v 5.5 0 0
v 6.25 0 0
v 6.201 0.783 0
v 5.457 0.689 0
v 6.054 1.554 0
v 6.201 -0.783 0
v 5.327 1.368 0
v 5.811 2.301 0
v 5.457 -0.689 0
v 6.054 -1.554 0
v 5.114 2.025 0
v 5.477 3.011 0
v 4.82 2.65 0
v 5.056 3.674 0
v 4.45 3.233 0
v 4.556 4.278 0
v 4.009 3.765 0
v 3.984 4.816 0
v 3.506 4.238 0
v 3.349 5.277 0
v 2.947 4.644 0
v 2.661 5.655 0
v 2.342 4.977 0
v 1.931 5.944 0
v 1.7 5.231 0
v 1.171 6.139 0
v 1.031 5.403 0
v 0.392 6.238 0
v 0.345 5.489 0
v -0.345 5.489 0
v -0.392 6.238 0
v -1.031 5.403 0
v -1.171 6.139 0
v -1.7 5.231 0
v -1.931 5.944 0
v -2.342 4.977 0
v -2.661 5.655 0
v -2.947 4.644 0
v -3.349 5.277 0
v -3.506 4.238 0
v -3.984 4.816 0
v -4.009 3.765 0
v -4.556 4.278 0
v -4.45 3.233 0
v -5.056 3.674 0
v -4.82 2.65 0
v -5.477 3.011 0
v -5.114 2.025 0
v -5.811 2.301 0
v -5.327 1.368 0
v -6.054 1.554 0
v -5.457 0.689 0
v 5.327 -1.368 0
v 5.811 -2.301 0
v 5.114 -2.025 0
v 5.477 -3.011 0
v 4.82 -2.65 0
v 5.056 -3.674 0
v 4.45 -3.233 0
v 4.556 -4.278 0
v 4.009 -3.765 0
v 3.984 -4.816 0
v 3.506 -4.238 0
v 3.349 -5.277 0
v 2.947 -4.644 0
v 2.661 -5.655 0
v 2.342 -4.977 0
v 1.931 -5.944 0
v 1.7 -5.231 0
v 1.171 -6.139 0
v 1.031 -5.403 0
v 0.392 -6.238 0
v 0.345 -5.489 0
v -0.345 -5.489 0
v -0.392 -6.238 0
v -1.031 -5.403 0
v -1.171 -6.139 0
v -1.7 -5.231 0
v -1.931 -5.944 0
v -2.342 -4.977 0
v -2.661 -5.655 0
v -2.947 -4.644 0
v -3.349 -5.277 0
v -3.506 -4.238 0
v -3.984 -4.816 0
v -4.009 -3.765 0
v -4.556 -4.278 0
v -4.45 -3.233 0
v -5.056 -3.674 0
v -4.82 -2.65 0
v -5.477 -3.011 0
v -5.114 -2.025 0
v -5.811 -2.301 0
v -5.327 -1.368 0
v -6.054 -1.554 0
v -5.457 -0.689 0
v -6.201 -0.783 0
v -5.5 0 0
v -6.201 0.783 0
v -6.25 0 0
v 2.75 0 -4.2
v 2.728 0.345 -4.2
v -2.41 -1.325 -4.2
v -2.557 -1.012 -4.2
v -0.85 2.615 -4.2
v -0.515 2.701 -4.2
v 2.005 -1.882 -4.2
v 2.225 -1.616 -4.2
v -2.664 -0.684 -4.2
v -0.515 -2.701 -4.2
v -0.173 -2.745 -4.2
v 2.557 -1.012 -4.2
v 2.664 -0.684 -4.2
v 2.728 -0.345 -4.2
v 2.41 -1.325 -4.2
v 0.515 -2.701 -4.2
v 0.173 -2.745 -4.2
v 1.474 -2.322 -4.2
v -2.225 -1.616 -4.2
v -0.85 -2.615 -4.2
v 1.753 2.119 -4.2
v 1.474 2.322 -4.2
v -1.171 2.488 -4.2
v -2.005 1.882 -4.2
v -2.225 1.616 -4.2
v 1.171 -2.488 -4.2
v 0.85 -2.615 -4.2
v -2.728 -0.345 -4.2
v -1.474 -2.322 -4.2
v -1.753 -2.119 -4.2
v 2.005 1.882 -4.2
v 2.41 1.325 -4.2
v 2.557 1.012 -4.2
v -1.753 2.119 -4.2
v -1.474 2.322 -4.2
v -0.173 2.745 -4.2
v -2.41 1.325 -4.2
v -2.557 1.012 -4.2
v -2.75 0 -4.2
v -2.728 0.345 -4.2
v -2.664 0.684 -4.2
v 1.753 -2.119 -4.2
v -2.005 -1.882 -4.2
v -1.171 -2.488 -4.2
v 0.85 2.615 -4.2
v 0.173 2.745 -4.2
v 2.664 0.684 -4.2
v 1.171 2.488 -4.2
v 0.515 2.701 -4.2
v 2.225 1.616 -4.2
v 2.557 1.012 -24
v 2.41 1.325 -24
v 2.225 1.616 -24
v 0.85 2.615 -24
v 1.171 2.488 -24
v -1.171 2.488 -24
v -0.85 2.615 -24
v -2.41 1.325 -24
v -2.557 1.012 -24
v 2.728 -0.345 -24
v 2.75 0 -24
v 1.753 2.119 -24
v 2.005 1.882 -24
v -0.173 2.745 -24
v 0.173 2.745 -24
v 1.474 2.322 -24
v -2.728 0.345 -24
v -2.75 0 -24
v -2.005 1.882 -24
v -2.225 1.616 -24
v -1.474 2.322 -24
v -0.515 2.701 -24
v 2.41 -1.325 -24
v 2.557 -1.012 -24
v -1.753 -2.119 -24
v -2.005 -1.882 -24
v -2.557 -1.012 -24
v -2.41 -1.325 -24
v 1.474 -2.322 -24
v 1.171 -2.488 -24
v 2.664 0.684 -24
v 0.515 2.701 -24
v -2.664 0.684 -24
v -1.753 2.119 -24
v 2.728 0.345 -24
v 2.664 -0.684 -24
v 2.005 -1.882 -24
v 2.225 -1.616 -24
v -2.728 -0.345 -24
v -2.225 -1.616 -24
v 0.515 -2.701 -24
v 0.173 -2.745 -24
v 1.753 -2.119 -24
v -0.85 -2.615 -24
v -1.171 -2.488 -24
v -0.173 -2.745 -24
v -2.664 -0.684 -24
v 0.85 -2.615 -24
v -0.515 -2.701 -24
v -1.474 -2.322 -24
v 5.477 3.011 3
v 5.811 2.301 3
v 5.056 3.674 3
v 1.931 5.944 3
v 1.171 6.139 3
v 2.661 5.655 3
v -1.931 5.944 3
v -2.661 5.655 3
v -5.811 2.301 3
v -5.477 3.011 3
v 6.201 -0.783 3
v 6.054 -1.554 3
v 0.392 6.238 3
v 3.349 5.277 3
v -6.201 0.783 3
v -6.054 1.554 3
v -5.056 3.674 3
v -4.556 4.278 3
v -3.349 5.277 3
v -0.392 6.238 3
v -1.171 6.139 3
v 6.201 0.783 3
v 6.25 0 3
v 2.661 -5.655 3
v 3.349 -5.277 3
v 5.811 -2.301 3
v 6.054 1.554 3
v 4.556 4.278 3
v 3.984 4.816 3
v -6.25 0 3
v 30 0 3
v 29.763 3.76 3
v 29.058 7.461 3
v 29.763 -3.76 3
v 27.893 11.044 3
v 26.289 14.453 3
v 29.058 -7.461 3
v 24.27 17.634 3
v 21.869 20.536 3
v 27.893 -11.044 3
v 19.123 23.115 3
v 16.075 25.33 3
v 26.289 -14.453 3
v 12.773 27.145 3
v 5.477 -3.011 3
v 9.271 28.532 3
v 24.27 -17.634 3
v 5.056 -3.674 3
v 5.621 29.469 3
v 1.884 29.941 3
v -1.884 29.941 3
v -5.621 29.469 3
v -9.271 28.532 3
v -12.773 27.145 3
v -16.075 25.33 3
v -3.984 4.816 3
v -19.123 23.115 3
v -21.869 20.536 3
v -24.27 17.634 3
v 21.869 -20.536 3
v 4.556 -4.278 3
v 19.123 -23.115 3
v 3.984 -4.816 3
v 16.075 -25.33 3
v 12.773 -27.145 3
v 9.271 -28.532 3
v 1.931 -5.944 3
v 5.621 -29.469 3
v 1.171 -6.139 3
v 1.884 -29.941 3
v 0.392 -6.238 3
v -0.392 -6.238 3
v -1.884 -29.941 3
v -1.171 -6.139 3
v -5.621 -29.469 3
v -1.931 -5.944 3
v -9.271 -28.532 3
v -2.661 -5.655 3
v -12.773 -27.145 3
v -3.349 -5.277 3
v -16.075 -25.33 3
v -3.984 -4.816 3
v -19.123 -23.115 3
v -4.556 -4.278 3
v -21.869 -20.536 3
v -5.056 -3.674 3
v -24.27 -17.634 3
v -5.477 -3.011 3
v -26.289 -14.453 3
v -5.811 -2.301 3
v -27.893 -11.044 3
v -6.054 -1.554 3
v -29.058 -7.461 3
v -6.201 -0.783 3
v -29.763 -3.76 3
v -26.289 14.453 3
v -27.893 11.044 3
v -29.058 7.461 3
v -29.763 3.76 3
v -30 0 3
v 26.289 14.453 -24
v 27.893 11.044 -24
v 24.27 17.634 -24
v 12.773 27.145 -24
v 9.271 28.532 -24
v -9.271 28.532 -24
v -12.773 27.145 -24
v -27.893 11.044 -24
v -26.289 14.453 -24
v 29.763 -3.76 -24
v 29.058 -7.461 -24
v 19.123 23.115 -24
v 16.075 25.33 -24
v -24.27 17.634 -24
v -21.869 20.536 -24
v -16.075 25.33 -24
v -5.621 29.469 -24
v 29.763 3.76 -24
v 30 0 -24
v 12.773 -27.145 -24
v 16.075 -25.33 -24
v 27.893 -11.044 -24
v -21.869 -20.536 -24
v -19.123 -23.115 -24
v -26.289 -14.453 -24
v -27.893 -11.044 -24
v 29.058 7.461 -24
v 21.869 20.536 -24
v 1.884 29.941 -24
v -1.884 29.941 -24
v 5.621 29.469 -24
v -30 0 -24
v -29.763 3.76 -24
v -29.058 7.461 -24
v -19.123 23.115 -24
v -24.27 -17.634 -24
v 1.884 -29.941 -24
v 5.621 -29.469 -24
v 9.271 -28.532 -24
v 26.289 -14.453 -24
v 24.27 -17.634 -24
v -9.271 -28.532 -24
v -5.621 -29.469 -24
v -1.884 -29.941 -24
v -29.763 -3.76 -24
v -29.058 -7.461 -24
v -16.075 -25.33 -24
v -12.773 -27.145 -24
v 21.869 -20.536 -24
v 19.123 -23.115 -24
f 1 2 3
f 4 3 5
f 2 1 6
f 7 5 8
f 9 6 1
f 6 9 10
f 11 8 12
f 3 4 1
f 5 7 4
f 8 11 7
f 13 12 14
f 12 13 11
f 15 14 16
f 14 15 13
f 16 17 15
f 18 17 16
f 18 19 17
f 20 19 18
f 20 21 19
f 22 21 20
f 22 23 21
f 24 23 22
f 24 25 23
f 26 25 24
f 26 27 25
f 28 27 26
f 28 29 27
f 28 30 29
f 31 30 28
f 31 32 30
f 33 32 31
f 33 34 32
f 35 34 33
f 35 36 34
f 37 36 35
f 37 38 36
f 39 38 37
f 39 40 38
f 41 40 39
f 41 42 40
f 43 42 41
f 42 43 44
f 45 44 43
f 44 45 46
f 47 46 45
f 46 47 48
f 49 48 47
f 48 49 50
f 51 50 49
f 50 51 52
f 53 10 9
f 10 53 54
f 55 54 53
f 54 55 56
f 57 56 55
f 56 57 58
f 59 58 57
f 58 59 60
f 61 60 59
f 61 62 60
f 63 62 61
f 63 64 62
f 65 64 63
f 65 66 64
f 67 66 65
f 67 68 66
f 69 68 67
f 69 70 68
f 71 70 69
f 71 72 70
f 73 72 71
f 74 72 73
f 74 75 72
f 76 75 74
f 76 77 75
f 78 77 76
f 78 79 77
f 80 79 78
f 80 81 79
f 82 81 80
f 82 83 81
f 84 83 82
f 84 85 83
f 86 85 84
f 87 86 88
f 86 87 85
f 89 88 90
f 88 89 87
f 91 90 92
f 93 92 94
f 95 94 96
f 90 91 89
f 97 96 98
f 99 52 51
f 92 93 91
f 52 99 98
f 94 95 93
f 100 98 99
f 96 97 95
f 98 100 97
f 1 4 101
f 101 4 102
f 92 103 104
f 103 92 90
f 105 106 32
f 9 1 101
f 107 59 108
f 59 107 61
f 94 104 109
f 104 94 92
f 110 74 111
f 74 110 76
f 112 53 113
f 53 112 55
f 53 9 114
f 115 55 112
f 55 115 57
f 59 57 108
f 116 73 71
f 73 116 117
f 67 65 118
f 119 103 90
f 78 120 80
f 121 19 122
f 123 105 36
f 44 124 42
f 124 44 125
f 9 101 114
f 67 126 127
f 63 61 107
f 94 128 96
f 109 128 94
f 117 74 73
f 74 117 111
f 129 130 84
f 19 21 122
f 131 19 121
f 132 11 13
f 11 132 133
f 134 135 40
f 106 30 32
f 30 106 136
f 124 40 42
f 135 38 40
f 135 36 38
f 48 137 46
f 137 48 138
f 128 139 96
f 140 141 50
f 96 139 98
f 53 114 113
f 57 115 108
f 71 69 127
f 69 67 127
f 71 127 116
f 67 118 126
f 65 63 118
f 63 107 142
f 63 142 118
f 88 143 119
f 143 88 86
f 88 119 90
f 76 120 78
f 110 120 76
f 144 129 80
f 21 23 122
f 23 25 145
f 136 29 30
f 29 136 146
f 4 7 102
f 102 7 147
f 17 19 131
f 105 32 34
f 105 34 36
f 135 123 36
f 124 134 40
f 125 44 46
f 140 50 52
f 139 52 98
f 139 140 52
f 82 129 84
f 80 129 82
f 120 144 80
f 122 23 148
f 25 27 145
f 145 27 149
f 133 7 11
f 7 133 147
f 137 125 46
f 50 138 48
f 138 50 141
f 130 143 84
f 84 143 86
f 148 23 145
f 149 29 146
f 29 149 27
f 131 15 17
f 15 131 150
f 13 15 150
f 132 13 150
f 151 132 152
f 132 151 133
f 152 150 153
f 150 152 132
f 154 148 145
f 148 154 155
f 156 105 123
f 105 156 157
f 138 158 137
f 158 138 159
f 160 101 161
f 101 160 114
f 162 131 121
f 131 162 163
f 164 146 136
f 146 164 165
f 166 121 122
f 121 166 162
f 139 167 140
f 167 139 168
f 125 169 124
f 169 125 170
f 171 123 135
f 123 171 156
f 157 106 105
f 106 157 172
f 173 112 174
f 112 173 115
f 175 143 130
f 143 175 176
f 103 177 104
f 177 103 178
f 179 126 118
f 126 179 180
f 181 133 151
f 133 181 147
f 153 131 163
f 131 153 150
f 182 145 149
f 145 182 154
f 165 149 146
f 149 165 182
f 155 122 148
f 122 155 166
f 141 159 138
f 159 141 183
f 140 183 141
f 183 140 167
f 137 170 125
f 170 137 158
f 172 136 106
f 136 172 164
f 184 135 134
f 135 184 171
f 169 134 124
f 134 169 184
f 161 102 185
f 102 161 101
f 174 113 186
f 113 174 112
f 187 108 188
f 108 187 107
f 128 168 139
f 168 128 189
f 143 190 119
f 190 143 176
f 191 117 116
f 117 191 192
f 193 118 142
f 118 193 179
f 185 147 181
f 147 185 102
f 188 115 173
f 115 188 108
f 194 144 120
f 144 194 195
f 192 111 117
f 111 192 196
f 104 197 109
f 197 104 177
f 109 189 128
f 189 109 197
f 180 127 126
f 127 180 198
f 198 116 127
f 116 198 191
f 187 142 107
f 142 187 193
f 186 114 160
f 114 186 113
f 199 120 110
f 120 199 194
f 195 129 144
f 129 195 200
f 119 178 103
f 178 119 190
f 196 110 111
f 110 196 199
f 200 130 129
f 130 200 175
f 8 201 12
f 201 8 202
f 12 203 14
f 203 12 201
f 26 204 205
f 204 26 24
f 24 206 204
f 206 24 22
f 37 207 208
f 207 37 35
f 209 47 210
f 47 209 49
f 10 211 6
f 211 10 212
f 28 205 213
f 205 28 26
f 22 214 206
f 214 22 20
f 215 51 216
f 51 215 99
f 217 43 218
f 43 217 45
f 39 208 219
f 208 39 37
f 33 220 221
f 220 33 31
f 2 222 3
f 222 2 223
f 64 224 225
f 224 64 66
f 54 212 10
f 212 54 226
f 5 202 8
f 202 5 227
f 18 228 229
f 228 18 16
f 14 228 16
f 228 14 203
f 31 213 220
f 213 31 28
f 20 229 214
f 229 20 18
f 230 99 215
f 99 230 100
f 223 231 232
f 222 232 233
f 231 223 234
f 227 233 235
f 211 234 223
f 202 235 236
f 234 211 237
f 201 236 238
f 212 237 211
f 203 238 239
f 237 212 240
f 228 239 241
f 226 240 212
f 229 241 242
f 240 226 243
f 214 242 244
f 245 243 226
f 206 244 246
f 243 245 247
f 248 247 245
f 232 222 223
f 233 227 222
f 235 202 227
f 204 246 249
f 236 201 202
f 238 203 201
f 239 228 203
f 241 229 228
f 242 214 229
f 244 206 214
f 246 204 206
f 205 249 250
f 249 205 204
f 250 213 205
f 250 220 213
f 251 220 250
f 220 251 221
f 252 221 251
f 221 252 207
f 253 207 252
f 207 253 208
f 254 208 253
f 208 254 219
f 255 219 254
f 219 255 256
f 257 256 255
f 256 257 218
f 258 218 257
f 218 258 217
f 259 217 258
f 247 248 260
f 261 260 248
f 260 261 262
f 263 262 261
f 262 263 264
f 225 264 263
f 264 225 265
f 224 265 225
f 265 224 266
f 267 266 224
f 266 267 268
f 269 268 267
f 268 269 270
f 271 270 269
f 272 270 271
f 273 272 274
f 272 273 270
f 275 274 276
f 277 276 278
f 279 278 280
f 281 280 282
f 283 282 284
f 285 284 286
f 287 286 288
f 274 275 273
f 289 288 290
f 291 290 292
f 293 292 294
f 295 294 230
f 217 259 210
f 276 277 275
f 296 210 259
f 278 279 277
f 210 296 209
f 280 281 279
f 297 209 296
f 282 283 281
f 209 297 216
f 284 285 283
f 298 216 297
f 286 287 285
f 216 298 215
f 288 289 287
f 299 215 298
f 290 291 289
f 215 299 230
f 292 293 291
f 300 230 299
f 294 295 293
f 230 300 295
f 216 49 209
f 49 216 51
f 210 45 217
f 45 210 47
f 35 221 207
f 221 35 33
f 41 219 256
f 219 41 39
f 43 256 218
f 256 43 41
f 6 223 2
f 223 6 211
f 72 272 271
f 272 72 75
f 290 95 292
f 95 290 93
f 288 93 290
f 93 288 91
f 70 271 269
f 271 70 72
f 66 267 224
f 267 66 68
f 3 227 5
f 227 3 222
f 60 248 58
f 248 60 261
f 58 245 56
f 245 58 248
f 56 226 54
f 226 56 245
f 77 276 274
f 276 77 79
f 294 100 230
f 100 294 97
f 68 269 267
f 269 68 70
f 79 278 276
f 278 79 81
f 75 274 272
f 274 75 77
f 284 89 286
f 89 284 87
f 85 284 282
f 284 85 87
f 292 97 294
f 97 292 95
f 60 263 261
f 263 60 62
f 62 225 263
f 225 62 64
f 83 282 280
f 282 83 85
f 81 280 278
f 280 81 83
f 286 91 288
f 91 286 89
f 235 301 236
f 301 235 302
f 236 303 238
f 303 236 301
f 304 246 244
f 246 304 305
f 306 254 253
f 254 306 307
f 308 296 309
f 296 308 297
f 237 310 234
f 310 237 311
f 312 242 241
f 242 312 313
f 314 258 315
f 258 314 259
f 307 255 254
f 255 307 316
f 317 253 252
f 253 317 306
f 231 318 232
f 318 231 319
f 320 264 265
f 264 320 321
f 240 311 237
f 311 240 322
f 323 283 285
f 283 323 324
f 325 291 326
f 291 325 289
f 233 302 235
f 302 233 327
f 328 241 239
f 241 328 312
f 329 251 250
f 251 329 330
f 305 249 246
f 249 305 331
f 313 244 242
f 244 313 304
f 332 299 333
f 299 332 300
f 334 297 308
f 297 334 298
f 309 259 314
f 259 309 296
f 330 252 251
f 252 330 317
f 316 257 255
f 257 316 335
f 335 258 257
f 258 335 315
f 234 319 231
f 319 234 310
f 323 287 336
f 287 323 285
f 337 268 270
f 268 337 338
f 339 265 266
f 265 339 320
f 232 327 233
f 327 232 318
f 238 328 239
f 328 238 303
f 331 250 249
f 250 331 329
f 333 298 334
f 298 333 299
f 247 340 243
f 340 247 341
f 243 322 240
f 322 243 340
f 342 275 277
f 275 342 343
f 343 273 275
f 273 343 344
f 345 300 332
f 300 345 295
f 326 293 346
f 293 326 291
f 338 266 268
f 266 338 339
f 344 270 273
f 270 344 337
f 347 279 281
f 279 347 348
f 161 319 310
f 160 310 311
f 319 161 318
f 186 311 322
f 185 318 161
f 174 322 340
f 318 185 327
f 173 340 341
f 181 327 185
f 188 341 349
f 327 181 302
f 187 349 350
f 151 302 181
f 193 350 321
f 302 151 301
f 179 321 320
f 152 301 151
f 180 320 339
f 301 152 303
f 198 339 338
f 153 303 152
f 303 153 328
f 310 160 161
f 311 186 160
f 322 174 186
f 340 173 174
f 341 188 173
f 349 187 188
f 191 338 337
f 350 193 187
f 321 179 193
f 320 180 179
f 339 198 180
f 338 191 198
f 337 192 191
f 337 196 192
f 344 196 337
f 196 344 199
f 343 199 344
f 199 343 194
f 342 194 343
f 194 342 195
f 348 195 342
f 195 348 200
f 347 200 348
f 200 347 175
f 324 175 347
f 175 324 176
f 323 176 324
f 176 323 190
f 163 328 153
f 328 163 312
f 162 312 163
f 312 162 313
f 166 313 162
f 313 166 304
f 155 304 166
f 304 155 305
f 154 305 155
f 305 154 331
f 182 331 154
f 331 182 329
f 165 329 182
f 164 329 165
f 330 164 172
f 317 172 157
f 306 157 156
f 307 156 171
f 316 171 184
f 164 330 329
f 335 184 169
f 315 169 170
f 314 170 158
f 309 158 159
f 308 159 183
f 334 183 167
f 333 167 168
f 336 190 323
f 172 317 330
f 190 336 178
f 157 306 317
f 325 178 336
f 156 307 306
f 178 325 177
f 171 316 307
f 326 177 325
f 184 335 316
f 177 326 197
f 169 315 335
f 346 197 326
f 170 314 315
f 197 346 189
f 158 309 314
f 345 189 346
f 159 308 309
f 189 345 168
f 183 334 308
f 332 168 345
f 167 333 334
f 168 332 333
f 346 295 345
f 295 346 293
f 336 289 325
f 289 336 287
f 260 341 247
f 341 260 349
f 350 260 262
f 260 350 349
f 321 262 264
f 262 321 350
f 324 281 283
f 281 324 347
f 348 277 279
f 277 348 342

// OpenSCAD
$fn = 50;


difference() {
	union() {
		translate(v = [0, 0, -24.0000000000]) {
			cylinder(h = 27, r = 30.0000000000);
		}
	}
	union() {
		translate(v = [0, 0, 0]) {
			rotate(a = [0, 0, 0]) {
				difference() {
					union() {
						translate(v = [0, 0, -27.0000000000]) {
							cylinder(h = 27, r = 2.2500000000);
						}
						translate(v = [0, 0, -4.2000000000]) {
							cylinder(h = 4.2000000000, r1 = 2.7500000000, r2 = 5.5000000000);
						}
						translate(v = [0, 0, -27.0000000000]) {
							cylinder(h = 27, r = 2.7500000000);
						}
						translate(v = [0, 0, -27.0000000000]) {
							cylinder(h = 27, r = 2.2500000000);
						}
					}
					union();
				}
			}
		}
		#cylinder(h = 3, r = 6.2500000000);
	}
}
